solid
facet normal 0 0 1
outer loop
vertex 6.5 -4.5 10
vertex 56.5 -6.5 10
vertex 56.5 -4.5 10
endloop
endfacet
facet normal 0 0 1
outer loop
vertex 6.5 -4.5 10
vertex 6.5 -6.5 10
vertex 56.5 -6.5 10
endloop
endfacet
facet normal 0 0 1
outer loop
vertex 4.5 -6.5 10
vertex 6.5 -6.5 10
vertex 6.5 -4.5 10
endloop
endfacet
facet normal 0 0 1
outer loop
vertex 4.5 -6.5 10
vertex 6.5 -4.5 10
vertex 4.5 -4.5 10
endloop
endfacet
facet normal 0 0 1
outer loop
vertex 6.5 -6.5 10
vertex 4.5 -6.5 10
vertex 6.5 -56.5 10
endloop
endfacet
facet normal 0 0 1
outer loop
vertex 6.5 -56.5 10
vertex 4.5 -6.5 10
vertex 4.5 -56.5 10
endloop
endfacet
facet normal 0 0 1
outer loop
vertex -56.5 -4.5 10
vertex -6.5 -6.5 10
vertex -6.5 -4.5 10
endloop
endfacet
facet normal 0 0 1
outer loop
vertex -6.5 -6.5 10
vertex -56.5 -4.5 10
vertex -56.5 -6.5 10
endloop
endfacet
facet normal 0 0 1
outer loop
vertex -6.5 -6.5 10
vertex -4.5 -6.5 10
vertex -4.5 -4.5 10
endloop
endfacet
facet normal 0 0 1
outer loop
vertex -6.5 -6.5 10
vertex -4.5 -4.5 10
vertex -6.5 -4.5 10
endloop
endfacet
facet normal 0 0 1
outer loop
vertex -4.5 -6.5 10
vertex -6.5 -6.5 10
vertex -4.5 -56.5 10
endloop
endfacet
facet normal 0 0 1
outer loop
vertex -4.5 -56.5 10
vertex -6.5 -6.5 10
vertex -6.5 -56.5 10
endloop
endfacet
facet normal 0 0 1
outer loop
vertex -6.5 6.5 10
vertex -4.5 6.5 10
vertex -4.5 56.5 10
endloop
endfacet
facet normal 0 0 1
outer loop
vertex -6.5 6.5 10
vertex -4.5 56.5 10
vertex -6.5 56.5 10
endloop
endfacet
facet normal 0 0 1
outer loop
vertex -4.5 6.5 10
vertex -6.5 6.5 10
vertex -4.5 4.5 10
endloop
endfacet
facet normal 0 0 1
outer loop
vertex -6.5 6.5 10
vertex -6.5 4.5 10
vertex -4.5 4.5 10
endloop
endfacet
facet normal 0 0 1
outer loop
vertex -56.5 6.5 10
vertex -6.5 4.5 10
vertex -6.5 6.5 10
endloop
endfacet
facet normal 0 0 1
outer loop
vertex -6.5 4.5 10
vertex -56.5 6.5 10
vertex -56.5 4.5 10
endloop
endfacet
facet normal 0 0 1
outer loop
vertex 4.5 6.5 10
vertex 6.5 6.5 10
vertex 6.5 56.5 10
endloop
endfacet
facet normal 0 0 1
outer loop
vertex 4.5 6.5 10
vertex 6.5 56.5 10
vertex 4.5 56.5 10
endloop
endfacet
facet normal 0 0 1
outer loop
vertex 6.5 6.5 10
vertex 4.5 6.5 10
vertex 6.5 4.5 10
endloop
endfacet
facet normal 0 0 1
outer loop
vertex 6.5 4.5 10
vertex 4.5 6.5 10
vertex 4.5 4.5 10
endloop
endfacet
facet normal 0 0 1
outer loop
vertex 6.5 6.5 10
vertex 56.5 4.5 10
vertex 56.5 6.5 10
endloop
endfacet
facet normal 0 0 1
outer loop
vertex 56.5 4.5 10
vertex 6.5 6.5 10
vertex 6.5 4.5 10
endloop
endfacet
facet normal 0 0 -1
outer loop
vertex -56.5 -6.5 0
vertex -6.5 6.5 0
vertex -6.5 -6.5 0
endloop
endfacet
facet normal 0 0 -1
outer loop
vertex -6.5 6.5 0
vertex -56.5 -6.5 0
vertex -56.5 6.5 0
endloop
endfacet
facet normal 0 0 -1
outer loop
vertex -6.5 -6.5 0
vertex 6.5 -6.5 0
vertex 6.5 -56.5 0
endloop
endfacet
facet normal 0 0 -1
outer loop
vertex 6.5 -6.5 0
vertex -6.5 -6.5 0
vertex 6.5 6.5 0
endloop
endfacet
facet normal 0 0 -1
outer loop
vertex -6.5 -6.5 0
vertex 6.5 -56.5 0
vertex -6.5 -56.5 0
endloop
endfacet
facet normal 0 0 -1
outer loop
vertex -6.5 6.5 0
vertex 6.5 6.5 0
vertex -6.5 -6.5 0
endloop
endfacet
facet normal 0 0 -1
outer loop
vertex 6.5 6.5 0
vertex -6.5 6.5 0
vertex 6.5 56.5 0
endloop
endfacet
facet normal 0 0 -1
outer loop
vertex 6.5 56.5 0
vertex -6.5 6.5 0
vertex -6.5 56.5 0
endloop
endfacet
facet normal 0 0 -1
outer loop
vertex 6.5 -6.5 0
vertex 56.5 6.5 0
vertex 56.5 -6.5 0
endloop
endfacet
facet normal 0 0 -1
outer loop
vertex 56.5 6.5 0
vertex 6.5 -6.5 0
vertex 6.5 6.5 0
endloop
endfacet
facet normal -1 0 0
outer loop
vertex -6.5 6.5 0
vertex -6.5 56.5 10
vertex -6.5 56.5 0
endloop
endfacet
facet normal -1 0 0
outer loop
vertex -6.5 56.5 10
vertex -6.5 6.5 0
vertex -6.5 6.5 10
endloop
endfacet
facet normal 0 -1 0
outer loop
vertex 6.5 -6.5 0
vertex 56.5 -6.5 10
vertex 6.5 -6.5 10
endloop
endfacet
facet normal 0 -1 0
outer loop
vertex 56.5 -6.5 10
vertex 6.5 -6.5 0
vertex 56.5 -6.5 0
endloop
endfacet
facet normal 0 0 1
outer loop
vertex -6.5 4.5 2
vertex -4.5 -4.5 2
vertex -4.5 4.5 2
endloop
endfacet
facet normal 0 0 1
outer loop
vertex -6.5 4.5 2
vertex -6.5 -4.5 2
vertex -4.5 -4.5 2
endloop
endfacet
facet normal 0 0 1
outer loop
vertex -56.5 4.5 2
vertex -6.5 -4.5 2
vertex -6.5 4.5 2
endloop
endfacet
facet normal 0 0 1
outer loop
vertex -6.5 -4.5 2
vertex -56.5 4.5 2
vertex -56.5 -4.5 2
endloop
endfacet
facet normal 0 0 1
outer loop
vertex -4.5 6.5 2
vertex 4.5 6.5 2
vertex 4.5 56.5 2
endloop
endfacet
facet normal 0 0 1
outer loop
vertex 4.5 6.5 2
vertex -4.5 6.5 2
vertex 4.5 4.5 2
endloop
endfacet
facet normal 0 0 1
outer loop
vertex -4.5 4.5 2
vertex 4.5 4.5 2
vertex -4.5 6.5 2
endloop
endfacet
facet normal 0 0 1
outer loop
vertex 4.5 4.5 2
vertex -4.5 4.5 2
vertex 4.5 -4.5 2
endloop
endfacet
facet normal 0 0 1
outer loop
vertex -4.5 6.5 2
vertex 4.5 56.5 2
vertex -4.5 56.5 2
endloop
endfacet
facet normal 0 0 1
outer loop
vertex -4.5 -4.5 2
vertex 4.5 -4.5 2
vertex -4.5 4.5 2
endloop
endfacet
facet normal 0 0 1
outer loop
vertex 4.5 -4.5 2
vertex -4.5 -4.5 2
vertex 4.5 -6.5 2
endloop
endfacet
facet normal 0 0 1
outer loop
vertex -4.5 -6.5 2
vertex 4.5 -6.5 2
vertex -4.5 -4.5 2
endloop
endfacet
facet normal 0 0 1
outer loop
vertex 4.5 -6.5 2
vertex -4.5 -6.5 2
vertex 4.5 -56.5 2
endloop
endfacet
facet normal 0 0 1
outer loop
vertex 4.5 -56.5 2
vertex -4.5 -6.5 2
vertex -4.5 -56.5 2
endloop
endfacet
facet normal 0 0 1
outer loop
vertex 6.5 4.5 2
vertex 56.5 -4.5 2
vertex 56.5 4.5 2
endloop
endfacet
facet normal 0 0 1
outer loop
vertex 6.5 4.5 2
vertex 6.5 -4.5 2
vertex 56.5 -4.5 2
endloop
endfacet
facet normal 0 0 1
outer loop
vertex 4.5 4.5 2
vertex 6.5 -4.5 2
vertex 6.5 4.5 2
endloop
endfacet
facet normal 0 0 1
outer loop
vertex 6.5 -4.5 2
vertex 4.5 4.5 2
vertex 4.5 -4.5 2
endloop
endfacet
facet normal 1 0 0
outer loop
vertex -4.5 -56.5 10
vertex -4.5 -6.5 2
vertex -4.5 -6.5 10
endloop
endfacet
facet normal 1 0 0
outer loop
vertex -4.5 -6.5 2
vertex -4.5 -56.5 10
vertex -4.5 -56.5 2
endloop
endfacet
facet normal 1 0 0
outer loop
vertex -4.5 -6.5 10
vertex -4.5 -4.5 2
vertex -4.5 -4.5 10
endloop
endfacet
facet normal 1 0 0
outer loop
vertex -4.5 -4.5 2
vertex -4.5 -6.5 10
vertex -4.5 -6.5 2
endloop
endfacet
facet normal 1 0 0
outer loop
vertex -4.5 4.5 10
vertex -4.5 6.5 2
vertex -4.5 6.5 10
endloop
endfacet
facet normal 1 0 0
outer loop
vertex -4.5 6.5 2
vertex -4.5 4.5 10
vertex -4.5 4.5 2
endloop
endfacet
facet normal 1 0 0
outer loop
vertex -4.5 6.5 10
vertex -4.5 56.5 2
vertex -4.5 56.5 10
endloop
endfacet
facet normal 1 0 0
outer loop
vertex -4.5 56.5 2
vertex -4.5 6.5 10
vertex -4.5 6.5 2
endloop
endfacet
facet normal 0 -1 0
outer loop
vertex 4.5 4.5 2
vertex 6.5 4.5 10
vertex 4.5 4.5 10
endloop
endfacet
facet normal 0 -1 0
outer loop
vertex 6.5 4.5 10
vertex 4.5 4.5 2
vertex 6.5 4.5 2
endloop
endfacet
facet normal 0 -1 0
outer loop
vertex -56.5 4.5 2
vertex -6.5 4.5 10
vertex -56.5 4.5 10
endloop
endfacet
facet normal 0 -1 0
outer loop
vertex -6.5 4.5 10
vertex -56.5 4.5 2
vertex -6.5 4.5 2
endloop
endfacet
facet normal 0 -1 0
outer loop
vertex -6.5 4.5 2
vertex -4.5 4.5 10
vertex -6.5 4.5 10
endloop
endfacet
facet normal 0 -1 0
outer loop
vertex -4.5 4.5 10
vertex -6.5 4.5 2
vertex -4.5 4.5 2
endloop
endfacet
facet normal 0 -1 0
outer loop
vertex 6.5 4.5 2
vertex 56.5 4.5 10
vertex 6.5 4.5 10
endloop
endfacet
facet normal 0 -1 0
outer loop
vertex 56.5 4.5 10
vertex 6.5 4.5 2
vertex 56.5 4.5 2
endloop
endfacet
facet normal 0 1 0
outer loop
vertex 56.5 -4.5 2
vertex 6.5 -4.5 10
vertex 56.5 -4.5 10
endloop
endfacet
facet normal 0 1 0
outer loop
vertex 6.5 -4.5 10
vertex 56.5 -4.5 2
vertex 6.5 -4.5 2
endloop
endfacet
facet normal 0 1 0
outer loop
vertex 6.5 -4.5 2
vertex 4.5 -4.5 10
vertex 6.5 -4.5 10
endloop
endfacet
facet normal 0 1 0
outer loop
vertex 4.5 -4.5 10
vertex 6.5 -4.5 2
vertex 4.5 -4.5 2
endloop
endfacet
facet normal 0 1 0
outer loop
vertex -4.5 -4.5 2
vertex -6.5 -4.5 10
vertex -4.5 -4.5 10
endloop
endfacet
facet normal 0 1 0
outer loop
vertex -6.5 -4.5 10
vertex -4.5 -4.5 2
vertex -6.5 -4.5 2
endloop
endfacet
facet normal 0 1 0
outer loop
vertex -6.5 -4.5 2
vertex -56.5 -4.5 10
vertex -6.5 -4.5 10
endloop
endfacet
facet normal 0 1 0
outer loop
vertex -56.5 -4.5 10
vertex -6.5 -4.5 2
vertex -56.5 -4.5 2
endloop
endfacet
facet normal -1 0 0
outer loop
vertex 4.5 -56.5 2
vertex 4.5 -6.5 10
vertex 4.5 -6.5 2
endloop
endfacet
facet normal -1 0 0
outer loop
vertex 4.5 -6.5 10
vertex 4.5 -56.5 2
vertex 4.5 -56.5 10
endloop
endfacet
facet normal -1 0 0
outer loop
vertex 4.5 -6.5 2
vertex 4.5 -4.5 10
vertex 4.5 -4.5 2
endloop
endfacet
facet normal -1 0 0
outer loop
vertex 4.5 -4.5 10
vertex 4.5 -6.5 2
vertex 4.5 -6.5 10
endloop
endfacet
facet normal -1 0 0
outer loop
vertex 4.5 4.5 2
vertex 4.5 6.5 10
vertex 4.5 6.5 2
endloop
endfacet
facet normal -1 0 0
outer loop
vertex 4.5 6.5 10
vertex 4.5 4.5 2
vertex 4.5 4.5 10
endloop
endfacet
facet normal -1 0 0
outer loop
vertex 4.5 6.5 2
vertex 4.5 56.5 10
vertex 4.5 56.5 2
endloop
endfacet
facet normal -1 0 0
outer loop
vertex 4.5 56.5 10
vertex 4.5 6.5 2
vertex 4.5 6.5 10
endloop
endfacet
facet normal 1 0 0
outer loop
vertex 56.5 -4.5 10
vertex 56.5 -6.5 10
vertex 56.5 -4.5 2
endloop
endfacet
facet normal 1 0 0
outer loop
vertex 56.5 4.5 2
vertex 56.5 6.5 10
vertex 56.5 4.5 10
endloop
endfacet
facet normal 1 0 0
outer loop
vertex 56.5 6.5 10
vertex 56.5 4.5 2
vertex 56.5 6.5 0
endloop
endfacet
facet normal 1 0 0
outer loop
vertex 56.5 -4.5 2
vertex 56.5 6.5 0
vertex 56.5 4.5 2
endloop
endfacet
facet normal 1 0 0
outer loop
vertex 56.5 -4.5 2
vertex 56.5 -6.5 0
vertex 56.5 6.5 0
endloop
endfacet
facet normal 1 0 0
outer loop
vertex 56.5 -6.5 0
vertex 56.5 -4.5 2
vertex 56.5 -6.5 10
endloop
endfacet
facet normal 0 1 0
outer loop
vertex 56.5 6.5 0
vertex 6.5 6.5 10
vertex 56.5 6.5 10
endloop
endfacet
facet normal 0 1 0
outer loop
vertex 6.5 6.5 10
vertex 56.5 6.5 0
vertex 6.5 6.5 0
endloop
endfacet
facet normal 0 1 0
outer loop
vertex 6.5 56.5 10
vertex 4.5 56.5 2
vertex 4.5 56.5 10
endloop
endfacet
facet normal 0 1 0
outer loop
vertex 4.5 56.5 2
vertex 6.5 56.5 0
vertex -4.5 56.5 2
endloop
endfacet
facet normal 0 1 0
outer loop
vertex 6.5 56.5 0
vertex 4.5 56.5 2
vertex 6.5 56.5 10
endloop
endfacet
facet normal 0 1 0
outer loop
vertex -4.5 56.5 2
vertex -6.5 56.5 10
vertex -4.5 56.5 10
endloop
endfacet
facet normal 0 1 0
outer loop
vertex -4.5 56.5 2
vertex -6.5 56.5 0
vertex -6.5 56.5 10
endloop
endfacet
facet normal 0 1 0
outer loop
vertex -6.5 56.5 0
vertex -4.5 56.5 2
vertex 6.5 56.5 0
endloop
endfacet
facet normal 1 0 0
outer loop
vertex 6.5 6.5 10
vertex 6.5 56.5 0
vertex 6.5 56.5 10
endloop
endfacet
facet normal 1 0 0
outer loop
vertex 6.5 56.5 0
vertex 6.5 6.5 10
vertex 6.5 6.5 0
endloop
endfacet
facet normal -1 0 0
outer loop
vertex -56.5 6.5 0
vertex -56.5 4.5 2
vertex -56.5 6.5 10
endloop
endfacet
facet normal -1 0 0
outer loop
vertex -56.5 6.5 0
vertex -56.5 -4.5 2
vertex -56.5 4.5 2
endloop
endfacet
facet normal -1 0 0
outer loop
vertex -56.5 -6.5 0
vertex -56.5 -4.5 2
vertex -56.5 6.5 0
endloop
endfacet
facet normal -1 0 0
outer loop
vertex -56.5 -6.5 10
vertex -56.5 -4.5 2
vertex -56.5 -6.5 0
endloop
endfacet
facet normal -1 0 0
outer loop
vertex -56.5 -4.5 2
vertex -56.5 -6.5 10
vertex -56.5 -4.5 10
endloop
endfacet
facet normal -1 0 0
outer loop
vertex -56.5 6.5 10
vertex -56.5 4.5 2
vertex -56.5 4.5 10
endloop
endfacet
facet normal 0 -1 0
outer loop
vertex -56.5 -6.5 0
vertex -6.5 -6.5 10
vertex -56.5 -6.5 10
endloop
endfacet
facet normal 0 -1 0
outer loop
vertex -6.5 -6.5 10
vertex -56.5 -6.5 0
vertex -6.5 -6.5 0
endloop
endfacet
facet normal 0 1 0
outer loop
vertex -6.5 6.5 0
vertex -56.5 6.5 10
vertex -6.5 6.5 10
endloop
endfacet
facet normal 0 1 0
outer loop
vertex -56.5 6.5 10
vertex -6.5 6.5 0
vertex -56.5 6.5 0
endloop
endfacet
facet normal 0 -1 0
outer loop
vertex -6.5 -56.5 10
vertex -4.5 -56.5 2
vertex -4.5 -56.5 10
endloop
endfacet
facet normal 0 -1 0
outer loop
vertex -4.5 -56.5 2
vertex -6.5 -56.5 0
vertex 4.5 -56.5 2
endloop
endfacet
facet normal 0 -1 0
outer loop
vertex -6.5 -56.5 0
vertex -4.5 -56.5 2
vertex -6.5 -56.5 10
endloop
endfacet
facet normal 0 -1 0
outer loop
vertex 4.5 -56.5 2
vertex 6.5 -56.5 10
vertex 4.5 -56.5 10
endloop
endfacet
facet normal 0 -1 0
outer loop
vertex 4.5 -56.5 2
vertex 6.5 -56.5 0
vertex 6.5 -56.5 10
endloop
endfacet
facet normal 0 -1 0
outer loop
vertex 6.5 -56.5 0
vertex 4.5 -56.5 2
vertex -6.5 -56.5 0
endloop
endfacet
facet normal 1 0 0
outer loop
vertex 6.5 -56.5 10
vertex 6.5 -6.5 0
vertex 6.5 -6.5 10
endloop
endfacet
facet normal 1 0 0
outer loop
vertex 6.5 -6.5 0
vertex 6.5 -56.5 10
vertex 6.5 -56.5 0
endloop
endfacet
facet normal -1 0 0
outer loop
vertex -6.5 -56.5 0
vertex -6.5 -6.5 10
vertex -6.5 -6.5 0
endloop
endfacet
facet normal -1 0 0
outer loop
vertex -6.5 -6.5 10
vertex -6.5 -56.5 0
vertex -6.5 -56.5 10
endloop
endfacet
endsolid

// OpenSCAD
// file: common.scad
module draw_base(center_size, total_width, wall_height, wall_thickness) {
    difference() {
        translate([-total_width/2, -total_width/2, 0])
            cube([total_width, total_width, wall_height]);
        translate([-center_size/2, -center_size/2, wall_thickness])
            cube([center_size, center_size, wall_height]);
    }
}

module single_sleeve(sleeve_length, total_width, groove_width, wall_height, wall_thickness, center_size) {
    difference() {
        translate([center_size/2, -total_width/2, 0])
            cube([sleeve_length, total_width, wall_height]);
        translate([center_size/2, -total_width/2 + wall_thickness, wall_thickness])
            cube([sleeve_length, groove_width, wall_height]);
    }
}

module cut_wall_opening(side, center_size, groove_width, wall_height, wall_thickness) {
    if (side == 0) {
        translate([center_size/2, -center_size/2, wall_thickness])
            cube([wall_thickness, groove_width, wall_height]);
    } else if (side == 1) {
        translate([-center_size/2, center_size/2, wall_thickness])
            cube([groove_width, wall_thickness, wall_height]);
    } else if (side == 2) {
        translate([-center_size/2 - wall_thickness, -center_size/2, wall_thickness])
            cube([wall_thickness, groove_width, wall_height]);
    } else if (side == 3) {
        translate([-center_size/2, -center_size/2 - wall_thickness, wall_thickness])
            cube([groove_width, wall_thickness, wall_height]);
    }
}

module attach_sleeve(side, sleeve_length, total_width, groove_width, wall_height, wall_thickness, center_size) {
    if (side == 0) {
        single_sleeve(sleeve_length, total_width, groove_width, wall_height, wall_thickness, center_size);
    } else if (side == 1) {
        rotate([0, 0, 90])
            single_sleeve(sleeve_length, total_width, groove_width, wall_height, wall_thickness, center_size);
    } else if (side == 2) {
        rotate([0, 0, 180])
            single_sleeve(sleeve_length, total_width, groove_width, wall_height, wall_thickness, center_size);
    } else if (side == 3) {
        rotate([0, 0, 270])
            single_sleeve(sleeve_length, total_width, groove_width, wall_height, wall_thickness, center_size);
    }
}

module add_dowel(x, y, dowel_diameter, dowel_depth) {
    translate([x, y, -dowel_depth])
        cylinder(h=dowel_depth, d=dowel_diameter, $fn=30);
}
// main file
use <common.scad>

center_size = 9;
sleeve_reach = 56.5;
groove_width = 9;
wall_height = 10;
wall_thickness = 2;

total_width = groove_width + 2 * wall_thickness;
sleeve_length = sleeve_reach - center_size/2;

union() {
    difference() {
        draw_base(center_size, total_width, wall_height, wall_thickness);
        cut_wall_opening(0, center_size, groove_width, wall_height, wall_thickness);
        cut_wall_opening(1, center_size, groove_width, wall_height, wall_thickness);
        cut_wall_opening(2, center_size, groove_width, wall_height, wall_thickness);
        cut_wall_opening(3, center_size, groove_width, wall_height, wall_thickness);
    }
    attach_sleeve(0, sleeve_length, total_width, groove_width, wall_height, wall_thickness, center_size);
    attach_sleeve(1, sleeve_length, total_width, groove_width, wall_height, wall_thickness, center_size);
    attach_sleeve(2, sleeve_length, total_width, groove_width, wall_height, wall_thickness, center_size);
    attach_sleeve(3, sleeve_length, total_width, groove_width, wall_height, wall_thickness, center_size);
}
